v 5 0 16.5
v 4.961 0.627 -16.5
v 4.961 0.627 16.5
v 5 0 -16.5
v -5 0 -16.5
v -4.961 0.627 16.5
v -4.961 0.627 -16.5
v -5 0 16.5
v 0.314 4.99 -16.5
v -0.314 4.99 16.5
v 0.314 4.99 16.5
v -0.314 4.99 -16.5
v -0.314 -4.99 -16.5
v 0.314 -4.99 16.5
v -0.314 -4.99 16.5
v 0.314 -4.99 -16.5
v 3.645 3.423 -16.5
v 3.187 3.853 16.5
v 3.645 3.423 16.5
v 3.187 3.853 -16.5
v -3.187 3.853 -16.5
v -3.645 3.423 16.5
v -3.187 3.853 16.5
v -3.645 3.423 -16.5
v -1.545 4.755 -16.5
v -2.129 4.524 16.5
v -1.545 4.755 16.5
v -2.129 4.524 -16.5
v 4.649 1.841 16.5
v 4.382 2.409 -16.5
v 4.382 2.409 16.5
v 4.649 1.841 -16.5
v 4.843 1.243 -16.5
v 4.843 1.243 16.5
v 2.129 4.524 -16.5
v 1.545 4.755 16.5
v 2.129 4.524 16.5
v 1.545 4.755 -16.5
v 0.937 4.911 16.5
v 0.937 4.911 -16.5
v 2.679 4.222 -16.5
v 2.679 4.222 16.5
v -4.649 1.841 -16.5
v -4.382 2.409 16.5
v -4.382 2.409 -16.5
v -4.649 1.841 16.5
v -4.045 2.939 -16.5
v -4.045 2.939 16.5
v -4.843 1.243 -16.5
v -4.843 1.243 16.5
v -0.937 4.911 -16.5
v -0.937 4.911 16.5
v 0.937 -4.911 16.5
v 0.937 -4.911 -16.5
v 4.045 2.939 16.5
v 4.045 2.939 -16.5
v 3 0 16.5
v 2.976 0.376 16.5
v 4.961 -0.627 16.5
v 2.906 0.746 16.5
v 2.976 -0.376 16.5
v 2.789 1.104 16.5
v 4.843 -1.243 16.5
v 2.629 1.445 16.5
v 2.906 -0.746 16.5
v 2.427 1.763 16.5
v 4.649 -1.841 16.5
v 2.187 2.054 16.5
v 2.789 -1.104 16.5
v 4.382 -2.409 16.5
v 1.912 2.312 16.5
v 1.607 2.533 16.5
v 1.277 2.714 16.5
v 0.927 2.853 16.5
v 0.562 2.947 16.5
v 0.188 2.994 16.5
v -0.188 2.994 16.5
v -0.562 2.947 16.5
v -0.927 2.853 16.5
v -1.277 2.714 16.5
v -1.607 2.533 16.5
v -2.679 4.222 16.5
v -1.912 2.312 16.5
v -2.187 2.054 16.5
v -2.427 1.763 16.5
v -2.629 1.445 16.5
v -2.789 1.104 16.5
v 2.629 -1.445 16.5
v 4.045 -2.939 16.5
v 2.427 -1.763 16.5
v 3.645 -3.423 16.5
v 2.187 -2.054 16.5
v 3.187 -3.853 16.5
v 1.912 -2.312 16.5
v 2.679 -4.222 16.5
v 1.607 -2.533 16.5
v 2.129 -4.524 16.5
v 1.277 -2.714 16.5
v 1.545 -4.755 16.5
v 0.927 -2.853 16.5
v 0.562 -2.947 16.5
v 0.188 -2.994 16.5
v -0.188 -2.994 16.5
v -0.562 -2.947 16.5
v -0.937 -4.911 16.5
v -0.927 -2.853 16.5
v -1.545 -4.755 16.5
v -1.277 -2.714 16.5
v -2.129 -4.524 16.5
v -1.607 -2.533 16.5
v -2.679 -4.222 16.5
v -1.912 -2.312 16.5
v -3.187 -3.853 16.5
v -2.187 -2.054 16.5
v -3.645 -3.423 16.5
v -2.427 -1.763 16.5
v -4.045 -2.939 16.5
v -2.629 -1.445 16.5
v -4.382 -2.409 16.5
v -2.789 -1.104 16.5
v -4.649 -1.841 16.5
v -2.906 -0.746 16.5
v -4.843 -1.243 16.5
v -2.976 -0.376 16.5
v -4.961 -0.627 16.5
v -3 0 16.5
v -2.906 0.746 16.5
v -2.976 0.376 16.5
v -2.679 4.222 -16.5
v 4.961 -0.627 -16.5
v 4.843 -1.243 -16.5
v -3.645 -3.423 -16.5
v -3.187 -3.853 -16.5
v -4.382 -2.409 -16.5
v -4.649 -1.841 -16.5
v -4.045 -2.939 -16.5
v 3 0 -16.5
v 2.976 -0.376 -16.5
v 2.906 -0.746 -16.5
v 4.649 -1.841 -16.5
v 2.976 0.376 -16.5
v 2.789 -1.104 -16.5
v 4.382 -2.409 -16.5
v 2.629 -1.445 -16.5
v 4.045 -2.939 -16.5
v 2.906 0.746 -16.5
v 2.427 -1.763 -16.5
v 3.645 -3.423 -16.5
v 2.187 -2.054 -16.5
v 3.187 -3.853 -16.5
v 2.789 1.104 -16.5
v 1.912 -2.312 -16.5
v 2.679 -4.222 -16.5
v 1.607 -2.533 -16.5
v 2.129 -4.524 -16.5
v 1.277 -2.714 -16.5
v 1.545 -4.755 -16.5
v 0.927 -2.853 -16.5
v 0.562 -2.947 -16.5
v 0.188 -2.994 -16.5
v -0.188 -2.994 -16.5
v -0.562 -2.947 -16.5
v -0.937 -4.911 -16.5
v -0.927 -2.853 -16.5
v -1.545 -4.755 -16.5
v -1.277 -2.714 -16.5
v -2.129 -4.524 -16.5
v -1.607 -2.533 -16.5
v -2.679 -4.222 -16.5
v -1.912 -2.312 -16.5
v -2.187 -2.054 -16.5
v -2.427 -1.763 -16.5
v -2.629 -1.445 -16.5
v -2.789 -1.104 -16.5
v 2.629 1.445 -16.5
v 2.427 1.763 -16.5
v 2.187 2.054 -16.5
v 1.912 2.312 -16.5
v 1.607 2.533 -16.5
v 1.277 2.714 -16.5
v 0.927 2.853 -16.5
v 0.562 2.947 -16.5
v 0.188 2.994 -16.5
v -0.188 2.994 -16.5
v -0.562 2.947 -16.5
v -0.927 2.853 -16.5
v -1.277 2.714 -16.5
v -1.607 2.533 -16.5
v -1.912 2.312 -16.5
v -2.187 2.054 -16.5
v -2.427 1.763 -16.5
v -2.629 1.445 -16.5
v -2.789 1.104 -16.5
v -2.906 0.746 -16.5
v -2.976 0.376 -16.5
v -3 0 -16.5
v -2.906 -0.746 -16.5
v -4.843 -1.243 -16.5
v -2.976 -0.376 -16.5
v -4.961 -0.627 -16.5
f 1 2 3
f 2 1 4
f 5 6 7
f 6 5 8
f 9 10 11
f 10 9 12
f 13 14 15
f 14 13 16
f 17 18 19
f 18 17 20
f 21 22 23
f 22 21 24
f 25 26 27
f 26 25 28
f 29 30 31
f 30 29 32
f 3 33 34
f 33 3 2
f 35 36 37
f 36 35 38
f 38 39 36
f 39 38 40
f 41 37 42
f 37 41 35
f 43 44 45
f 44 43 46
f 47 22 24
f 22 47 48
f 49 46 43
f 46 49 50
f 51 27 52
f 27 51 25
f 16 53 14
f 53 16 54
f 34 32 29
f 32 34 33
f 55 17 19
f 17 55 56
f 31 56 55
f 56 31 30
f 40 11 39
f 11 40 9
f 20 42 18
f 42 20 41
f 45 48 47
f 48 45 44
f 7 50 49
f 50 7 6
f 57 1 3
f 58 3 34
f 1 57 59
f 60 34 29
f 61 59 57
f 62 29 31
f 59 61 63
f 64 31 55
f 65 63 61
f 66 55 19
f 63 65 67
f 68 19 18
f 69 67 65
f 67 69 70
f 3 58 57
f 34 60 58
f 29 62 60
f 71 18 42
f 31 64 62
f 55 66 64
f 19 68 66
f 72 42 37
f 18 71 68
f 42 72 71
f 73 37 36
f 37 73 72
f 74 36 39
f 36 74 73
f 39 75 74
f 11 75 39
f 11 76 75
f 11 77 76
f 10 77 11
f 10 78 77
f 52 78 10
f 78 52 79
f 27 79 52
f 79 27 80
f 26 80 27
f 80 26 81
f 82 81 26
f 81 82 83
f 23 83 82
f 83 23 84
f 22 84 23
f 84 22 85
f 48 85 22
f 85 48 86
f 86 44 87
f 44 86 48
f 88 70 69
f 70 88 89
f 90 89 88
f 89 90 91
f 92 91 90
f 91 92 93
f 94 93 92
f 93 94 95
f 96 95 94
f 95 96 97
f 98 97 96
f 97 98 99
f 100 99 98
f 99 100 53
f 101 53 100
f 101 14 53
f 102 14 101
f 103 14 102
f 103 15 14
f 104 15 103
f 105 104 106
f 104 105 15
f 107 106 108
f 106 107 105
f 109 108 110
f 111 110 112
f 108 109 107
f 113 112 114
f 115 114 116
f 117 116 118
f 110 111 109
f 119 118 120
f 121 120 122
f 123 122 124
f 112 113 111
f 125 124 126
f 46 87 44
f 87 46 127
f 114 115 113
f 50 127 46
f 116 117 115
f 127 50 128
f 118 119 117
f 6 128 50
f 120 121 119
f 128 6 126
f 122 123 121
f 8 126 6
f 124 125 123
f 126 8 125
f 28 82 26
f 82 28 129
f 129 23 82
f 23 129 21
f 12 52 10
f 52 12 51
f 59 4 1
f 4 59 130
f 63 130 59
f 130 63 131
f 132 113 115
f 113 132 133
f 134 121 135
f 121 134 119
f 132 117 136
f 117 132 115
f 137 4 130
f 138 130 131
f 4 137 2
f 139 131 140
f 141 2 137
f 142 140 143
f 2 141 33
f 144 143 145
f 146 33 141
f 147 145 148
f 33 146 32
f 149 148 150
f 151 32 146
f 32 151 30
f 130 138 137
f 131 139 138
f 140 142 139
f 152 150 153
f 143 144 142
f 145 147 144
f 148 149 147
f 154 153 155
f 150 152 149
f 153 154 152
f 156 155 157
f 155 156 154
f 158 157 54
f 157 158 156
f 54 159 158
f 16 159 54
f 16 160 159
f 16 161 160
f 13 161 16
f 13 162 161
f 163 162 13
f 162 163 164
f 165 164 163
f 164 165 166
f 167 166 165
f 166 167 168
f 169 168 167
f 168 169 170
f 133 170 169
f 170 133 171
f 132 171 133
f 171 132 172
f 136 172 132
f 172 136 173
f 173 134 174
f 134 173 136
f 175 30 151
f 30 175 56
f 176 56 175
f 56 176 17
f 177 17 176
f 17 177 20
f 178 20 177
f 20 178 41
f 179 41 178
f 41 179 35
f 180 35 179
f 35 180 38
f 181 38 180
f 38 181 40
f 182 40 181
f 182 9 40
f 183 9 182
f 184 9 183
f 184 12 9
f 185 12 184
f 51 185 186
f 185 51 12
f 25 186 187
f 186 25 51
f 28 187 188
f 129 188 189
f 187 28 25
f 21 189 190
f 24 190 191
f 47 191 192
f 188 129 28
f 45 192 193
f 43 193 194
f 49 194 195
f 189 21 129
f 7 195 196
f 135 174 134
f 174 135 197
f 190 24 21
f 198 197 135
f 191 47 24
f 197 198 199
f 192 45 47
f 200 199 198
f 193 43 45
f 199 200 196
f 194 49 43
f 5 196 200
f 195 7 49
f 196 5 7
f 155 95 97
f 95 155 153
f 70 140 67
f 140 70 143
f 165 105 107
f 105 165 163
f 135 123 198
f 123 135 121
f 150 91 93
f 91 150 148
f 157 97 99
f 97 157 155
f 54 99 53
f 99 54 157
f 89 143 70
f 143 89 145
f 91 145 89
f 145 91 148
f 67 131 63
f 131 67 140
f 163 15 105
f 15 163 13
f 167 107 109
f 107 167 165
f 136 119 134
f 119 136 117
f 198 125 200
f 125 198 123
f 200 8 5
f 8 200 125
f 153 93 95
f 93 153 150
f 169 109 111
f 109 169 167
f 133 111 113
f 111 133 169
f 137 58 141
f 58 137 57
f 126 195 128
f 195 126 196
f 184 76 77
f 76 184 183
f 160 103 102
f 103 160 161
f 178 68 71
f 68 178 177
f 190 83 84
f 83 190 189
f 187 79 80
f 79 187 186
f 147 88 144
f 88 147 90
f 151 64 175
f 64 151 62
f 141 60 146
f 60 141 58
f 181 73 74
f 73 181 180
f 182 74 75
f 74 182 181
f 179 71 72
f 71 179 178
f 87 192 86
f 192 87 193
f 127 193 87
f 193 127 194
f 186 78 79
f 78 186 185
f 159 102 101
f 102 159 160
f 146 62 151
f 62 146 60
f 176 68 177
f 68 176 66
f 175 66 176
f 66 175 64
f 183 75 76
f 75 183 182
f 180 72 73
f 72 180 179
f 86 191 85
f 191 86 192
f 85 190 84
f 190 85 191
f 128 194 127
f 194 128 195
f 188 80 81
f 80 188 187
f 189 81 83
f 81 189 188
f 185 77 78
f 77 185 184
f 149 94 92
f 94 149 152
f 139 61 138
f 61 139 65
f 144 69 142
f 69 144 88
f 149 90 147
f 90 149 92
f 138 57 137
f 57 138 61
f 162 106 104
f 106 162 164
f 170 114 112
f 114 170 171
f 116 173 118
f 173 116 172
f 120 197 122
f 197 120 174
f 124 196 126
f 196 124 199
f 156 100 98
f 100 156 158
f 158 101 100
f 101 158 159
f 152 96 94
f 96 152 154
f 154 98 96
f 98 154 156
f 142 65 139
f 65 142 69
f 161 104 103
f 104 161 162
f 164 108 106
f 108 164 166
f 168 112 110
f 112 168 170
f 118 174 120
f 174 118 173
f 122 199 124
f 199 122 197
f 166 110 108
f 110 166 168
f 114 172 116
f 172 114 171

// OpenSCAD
$fn = 50;


difference() {
	union() {
		translate(v = [0, 0, -16.5000000000]) {
			cylinder(h = 33, r = 5.0000000000);
		}
	}
	union() {
		translate(v = [0, 0, -100.0000000000]) {
			cylinder(h = 200, r = 3);
		}
	}
}
